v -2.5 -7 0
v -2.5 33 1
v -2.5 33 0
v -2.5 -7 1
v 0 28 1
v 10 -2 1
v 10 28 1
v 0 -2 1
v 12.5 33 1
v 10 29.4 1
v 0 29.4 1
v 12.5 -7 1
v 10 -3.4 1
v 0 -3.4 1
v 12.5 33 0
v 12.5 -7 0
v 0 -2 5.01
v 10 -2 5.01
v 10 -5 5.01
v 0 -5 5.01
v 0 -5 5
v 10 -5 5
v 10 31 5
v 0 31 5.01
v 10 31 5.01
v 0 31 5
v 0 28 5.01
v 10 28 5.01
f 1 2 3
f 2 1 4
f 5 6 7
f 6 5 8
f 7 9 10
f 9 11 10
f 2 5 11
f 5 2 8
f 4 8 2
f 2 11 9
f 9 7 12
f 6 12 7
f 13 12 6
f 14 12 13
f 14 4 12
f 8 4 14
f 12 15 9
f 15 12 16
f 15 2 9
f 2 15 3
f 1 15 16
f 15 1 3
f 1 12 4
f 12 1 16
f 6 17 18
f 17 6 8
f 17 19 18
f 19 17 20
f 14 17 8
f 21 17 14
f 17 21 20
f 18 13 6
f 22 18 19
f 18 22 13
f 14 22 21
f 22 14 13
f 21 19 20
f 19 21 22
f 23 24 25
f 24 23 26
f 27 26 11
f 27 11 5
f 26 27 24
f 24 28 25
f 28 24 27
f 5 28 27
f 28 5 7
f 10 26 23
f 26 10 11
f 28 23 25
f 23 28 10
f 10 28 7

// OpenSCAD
translate([-2.5,-7, 0])
cube([15,40,1]);

// battery holder
/*translate([0, -5, 0])
    cube([10, 3, 5]);

translate([0, 33-5, 0])
    cube([10, 3, 5]);*/
    
translate([0, -3, 0])
    hull() {
        cube([10, 1, 5]);    
        translate([0, -2, 5])
            cube([10, 3, 0.01]);    

    }
    
translate([0, 33-5, 0])
    hull() {
        cube([10, 1, 5]);    
        translate([0, 0, 5])
            cube([10, 3, 0.01]);    

    }
